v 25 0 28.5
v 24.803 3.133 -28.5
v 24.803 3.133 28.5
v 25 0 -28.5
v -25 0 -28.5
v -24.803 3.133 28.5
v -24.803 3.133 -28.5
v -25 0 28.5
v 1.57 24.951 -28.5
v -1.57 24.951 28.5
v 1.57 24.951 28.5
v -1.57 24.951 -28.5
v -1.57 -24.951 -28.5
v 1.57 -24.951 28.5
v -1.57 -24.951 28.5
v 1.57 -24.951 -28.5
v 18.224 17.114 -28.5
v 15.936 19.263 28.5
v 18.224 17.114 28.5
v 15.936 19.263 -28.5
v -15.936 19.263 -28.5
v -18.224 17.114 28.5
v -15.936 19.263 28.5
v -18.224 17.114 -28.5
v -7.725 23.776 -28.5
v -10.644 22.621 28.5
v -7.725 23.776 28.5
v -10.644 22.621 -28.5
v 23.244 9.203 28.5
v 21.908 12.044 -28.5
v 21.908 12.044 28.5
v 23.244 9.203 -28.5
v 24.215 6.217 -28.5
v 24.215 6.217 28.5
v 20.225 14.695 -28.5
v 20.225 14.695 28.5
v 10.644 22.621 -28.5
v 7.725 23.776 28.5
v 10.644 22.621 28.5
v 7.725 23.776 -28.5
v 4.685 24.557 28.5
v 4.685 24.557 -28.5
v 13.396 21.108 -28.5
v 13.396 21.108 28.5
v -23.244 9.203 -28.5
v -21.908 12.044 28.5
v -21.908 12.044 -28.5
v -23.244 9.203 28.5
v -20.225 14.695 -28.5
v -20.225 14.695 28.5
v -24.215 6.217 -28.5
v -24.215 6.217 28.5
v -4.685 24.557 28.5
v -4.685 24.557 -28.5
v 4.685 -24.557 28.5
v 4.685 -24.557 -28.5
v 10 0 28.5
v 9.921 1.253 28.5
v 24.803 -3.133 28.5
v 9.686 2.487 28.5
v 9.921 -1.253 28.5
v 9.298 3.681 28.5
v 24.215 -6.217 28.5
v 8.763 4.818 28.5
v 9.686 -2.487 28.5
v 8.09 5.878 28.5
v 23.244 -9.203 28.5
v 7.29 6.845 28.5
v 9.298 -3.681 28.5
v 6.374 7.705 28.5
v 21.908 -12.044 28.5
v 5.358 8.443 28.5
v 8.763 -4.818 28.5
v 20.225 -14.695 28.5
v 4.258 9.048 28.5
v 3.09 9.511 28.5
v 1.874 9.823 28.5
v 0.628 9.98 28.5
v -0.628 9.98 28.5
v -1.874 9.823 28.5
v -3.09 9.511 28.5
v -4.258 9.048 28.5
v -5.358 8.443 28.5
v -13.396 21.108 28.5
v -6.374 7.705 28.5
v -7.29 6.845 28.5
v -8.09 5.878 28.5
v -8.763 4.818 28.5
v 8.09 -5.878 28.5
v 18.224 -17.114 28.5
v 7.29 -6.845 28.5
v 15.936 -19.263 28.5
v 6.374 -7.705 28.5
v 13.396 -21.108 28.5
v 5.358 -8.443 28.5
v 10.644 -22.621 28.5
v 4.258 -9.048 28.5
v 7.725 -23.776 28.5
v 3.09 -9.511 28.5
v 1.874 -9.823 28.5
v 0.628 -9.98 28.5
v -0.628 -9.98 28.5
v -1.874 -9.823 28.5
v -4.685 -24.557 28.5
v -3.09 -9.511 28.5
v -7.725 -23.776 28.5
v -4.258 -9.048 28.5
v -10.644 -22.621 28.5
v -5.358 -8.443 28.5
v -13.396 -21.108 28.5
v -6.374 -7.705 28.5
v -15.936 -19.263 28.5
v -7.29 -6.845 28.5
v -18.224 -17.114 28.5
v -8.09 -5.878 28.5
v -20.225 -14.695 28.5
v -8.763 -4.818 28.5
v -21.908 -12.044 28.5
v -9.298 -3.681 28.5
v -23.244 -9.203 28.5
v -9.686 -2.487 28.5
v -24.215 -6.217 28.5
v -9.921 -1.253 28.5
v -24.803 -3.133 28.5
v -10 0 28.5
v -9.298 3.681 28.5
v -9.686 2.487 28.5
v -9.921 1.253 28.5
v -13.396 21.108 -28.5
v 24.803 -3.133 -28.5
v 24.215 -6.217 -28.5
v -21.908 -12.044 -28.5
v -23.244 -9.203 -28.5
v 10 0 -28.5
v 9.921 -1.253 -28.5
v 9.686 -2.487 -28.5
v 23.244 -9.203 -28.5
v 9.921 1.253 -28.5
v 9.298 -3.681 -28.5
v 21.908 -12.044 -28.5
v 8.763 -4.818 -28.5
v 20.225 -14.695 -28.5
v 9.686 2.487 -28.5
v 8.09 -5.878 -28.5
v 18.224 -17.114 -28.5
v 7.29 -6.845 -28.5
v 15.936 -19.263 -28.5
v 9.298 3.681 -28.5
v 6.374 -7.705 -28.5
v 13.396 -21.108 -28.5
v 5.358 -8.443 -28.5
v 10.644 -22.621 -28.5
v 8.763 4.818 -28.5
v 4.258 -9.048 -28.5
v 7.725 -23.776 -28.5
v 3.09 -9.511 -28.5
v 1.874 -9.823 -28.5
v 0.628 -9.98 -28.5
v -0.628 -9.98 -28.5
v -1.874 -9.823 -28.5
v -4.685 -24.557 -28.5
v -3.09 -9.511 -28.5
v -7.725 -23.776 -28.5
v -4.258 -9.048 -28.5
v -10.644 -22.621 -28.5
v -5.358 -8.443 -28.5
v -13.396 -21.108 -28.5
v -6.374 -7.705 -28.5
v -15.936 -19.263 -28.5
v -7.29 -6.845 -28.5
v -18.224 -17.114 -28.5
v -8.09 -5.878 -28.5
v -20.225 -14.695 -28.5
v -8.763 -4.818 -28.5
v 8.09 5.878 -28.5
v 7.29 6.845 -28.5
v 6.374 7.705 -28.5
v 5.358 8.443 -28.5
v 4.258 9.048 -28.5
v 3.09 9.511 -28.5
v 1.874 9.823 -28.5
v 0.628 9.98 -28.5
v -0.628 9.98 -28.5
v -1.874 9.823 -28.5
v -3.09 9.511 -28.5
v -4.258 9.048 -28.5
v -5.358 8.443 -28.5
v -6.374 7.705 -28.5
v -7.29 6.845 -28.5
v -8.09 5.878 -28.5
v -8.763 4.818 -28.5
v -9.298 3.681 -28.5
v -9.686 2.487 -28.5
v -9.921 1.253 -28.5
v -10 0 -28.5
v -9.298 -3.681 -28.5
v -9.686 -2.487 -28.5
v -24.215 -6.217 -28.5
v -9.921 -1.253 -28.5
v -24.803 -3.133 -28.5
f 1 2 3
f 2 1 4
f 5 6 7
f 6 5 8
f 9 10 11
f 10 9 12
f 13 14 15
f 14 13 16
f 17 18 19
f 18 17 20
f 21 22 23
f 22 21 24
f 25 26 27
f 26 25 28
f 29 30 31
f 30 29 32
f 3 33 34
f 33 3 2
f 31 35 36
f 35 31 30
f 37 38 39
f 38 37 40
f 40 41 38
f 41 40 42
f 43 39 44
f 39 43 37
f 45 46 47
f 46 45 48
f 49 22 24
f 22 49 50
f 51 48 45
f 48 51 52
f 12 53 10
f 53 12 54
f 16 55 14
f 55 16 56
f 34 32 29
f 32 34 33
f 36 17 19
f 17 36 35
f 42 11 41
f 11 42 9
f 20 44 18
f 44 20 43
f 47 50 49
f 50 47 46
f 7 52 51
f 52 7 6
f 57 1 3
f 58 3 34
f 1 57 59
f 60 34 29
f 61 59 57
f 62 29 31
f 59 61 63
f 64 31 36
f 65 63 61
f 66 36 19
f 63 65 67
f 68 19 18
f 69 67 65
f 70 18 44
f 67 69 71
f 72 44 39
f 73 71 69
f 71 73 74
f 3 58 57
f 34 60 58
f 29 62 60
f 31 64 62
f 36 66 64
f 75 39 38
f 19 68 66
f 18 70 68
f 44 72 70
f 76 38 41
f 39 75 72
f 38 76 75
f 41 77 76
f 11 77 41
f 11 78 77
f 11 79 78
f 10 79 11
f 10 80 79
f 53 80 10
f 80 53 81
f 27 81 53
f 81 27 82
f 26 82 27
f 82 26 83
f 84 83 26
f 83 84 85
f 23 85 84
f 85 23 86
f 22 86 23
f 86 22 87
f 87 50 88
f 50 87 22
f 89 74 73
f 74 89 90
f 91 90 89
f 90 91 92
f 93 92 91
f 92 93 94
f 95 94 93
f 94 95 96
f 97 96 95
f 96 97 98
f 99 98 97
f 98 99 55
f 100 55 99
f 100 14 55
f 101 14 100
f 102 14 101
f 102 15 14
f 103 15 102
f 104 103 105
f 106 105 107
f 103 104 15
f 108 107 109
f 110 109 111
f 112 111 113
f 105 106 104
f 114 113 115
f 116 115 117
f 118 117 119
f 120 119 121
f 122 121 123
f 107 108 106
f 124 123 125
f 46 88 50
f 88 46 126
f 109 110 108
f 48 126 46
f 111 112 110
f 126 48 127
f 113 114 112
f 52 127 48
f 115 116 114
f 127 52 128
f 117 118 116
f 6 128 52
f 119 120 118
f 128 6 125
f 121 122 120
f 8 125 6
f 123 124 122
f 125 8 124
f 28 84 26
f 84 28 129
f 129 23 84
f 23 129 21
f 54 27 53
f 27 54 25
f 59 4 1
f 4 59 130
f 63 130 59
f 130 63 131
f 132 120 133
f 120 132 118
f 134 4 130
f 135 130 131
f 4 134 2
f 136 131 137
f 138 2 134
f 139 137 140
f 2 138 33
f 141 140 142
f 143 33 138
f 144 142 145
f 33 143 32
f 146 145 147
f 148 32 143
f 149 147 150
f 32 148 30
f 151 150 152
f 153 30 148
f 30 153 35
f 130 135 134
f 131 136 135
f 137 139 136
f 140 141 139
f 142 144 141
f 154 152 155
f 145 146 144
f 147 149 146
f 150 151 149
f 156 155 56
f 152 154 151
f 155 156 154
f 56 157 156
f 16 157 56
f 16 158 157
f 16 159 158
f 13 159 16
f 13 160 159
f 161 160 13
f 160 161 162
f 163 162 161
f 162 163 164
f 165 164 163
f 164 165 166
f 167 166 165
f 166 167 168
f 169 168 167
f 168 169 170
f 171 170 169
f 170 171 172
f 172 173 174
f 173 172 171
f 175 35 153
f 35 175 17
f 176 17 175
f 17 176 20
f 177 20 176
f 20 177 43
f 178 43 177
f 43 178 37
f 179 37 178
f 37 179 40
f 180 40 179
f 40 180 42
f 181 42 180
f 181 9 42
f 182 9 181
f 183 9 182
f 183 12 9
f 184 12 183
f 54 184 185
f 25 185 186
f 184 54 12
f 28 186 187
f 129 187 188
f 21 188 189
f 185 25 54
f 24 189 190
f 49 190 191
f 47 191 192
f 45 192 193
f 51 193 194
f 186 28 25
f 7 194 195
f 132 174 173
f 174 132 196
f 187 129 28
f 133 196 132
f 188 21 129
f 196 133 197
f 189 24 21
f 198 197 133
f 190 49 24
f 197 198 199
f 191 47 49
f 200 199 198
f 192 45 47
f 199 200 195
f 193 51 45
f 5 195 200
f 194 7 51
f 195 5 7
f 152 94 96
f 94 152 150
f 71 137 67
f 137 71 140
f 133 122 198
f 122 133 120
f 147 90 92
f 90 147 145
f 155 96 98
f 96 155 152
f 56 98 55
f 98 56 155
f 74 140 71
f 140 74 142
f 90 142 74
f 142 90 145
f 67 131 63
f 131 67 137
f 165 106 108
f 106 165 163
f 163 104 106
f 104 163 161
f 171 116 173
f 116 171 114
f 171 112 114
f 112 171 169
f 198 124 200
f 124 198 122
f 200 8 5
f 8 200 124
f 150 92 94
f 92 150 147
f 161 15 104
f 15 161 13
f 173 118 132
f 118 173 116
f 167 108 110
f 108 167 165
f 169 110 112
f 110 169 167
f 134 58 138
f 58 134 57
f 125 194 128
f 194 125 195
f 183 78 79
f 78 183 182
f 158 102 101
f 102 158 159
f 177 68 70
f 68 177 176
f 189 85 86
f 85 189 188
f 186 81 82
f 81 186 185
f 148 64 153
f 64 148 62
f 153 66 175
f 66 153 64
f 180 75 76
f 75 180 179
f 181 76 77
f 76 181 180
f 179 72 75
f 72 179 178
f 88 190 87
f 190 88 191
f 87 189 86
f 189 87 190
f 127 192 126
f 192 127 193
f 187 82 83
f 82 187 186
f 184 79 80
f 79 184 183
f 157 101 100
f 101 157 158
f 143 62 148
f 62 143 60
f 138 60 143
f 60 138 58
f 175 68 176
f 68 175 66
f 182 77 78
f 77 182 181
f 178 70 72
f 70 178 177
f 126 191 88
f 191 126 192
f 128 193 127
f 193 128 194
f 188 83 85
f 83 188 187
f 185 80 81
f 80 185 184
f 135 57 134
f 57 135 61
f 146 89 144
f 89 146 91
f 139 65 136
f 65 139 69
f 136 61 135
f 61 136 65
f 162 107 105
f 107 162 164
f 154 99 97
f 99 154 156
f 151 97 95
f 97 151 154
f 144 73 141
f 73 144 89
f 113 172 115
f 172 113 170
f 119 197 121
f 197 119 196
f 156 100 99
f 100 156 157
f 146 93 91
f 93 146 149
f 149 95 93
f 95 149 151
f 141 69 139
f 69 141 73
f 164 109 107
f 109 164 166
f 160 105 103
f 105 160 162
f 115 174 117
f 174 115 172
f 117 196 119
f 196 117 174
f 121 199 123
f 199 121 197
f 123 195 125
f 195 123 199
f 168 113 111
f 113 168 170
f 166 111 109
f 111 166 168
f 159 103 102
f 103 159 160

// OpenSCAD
$fn = 50;


difference() {
	union() {
		translate(v = [0, 0, -28.5000000000]) {
			cylinder(h = 57, r = 25.0000000000);
		}
	}
	union() {
		translate(v = [0, 0, -100.0000000000]) {
			cylinder(h = 200, r = 10);
		}
	}
}
